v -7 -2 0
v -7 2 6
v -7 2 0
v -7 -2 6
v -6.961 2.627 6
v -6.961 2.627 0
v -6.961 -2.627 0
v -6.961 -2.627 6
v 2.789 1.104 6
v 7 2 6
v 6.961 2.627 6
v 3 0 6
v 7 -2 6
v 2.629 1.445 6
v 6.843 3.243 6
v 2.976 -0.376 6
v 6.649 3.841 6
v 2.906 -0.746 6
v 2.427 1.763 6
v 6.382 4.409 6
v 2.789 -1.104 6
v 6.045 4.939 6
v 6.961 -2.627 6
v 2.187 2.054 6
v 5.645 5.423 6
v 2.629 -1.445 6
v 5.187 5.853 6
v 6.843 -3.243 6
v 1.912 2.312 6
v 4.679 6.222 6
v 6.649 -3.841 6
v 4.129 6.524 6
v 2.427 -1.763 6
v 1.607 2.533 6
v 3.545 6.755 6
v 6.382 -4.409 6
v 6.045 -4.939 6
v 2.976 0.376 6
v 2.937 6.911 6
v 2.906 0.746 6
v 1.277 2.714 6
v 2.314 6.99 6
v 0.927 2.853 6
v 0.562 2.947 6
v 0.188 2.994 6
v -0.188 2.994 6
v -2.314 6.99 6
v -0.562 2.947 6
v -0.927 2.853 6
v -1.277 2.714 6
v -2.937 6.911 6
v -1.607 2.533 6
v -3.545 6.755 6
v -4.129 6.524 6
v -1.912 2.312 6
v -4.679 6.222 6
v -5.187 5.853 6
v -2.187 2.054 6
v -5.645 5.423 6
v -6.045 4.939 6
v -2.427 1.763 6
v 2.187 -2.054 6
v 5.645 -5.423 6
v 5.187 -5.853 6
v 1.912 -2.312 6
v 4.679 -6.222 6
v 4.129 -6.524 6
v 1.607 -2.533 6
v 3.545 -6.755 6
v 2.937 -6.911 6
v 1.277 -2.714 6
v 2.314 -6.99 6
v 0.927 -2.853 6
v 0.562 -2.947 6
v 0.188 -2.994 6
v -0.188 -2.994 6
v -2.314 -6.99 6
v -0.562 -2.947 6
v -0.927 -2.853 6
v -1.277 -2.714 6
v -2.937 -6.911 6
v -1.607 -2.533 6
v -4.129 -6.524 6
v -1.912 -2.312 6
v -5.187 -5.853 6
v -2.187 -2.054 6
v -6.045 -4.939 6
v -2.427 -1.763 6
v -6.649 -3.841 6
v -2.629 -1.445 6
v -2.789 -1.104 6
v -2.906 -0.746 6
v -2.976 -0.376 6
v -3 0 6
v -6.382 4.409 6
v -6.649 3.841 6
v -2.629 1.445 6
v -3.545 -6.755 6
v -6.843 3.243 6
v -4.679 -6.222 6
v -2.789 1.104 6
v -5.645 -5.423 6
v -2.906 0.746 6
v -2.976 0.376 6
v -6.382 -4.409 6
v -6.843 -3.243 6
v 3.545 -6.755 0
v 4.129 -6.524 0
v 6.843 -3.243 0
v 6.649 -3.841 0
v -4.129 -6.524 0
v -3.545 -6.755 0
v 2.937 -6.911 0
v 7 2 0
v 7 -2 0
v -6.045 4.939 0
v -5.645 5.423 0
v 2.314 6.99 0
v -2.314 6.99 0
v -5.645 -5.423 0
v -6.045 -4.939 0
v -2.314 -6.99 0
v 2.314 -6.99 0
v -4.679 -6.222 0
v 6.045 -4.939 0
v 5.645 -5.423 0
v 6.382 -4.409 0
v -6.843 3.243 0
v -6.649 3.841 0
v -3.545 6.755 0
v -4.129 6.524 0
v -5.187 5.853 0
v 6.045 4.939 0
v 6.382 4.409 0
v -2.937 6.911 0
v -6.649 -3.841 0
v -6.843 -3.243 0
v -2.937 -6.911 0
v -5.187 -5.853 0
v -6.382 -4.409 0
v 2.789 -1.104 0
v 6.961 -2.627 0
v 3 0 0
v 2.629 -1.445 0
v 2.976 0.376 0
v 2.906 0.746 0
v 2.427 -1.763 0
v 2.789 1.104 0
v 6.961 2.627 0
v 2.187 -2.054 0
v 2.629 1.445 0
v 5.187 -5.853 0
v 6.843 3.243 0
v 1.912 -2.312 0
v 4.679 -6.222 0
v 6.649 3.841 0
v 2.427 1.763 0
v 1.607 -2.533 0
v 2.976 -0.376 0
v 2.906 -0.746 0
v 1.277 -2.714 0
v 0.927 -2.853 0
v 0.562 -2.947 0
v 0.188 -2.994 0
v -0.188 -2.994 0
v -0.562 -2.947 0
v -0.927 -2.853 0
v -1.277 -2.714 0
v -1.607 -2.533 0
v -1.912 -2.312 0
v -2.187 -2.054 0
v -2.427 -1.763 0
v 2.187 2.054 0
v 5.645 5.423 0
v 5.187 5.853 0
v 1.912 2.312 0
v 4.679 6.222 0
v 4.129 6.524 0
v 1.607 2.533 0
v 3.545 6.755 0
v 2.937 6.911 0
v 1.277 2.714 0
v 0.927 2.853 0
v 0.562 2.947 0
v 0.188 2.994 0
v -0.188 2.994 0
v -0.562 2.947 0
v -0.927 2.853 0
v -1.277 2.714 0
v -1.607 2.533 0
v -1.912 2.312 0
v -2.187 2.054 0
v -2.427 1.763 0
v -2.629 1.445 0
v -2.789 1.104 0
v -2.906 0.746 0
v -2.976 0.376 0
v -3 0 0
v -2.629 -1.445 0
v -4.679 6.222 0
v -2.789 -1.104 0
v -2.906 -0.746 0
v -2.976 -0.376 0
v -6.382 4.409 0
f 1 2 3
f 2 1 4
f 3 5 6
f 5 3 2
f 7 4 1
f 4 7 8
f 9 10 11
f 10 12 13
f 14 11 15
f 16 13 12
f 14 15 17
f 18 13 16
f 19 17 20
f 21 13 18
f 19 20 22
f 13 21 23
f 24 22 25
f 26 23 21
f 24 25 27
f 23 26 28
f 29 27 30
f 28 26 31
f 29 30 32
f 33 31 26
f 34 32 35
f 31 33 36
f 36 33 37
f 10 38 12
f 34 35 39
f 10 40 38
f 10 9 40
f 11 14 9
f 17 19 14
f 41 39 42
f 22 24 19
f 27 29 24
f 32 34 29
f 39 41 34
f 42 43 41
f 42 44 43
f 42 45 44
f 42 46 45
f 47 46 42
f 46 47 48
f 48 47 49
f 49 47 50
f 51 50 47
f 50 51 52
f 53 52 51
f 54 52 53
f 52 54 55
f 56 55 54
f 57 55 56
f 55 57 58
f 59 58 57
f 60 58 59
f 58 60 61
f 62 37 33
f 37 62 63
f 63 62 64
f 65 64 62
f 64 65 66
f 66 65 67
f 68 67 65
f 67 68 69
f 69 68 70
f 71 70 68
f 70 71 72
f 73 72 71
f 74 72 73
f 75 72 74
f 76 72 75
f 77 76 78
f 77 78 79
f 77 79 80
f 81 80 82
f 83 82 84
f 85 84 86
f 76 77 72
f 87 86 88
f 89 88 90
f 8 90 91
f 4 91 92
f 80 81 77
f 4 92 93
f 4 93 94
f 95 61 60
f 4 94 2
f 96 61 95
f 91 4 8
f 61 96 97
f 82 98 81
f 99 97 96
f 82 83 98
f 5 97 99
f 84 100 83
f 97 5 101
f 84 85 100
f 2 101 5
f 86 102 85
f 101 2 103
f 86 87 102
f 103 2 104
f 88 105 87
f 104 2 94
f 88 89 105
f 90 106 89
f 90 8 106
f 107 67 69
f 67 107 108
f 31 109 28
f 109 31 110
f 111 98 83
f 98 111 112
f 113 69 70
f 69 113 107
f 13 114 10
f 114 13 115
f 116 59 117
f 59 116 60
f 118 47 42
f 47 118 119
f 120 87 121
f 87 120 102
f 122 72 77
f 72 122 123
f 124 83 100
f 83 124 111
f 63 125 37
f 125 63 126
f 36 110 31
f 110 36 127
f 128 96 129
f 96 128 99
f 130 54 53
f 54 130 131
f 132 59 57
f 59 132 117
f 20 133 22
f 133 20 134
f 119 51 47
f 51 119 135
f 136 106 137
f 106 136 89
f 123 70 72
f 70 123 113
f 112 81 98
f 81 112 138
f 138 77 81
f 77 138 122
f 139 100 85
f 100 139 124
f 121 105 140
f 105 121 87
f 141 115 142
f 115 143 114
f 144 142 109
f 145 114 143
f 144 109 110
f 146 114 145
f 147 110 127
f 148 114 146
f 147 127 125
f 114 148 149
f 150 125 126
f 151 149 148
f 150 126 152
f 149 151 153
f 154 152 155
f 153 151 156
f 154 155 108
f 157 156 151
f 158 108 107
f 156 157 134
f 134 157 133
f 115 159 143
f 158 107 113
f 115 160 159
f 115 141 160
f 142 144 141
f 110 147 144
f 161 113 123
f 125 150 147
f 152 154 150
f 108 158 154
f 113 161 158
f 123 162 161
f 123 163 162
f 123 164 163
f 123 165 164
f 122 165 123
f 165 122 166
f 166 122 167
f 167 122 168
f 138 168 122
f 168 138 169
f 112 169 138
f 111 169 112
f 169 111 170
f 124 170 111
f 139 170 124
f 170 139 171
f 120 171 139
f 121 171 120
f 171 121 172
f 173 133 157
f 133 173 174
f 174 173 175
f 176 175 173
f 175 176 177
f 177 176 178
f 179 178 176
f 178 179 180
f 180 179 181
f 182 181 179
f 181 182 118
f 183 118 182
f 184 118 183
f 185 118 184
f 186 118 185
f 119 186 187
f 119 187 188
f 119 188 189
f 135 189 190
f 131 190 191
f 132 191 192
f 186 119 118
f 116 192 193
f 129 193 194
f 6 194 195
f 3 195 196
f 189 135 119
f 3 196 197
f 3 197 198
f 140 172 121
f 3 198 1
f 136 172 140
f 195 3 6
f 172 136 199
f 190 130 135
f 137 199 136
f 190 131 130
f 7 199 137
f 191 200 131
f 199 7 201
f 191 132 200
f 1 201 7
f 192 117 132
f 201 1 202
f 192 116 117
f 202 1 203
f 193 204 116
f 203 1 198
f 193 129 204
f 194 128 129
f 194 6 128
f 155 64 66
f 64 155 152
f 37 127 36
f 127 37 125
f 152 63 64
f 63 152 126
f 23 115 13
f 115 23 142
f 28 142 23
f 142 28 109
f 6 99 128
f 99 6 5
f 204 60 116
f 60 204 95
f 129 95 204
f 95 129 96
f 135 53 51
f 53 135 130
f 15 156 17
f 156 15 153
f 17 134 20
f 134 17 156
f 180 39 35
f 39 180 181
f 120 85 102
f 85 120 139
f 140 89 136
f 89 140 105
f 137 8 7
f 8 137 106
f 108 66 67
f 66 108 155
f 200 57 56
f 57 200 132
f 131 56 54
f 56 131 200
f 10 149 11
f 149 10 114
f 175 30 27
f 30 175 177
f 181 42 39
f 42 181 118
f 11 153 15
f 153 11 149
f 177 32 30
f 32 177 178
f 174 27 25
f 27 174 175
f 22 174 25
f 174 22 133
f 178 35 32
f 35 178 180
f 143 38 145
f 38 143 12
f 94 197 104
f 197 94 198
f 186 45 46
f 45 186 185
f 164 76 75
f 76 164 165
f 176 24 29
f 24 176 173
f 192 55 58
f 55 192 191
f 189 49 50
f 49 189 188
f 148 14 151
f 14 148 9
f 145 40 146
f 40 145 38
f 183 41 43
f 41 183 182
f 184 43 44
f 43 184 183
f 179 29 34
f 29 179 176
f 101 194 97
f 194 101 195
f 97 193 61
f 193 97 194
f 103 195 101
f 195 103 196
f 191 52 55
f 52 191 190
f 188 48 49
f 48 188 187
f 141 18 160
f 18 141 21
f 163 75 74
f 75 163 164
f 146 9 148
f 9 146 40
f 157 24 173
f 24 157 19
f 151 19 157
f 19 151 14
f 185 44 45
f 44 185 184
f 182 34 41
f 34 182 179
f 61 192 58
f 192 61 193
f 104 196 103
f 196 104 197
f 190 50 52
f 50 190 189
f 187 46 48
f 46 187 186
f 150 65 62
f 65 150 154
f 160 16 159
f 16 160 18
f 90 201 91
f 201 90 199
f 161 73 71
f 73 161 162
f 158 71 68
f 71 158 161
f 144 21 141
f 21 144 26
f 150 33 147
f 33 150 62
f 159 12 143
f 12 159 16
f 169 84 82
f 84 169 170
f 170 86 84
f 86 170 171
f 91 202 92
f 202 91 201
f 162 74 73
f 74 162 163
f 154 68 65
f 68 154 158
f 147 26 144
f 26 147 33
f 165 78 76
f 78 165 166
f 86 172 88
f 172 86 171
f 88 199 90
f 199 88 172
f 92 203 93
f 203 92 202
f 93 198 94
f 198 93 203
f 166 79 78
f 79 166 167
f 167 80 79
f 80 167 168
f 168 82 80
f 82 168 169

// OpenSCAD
// Generated by SolidPython 1.1.3 on 2023-03-12 22:43:34
$fn = 50;


difference() {
	union() {
		translate(v = [0, 0, 0]) {
			rotate(a = [0, 0, 0]) {
				hull() {
					translate(v = [-2.0000000000, 2.0000000000, 0]) {
						rotate(a = [0, 0, 0]) {
							translate(v = [0, 0, 0]) {
								rotate(a = [0, 0, 0]) {
									cylinder(h = 6, r = 5);
								}
							}
						}
					}
					translate(v = [2.0000000000, 2.0000000000, 0]) {
						rotate(a = [0, 0, 0]) {
							translate(v = [0, 0, 0]) {
								rotate(a = [0, 0, 0]) {
									cylinder(h = 6, r = 5);
								}
							}
						}
					}
					translate(v = [-2.0000000000, -2.0000000000, 0]) {
						rotate(a = [0, 0, 0]) {
							translate(v = [0, 0, 0]) {
								rotate(a = [0, 0, 0]) {
									cylinder(h = 6, r = 5);
								}
							}
						}
					}
					translate(v = [2.0000000000, -2.0000000000, 0]) {
						rotate(a = [0, 0, 0]) {
							translate(v = [0, 0, 0]) {
								rotate(a = [0, 0, 0]) {
									cylinder(h = 6, r = 5);
								}
							}
						}
					}
				}
			}
		}
	}
	union() {
		translate(v = [0.0000000000, 0.0000000000, 0]) {
			rotate(a = [0, 0, 0]) {
				translate(v = [0, 0, -50]) {
					rotate(a = [0, 0, 0]) {
						cylinder(h = 100, r = 3.0000000000);
					}
				}
			}
		}
	}
}
/***********************************************
*********      SolidPython code:      **********
************************************************
 
from solid import *
import os
import subprocess

import oomB

import opsc_library_gen

mode = "laser"
#mode = "3d_print"

defined_objects = {}

radius_dict = {}
countersunk_dict = {}


def set_mode(m):
    global mode
    mode = m
    radius_dict['M6'] = 6.5/2
    radius_dict['M3'] = 3.3/2
    if mode == "laser":
        radius_dict['M6'] = 6/2
        radius_dict['M3'] = 3/2

    countersunk_dict['M3'] = {}
    countersunk_dict['M3']['little_rad'] = radius_dict['M3']
    countersunk_dict['M3']['big_rad'] = (5.5+0.6)/2
    if mode == "laser":
        countersunk_dict['M3']['big_rad'] = (4.75+0.6)/2
        countersunk_dict['M3']['little_rad'] = (4.75+0.6)/2

    countersunk_dict['M3']['height'] = 1.7


def opsc_make_object(filename, objects, save_type="none",resolution=50, layers = 1, tilediff = 200, mode="laser", overwrite=True):
    if overwrite or not os.path.exists(filename):
        set_mode(mode)
        save_type = save_type.lower()
        os.makedirs(os.path.dirname(filename), exist_ok=True)
        final_object = opsc_get_object(objects, mode = mode)
        # Save the final object to the specified filename    
        scad_render_to_file(final_object, filename, file_header='$fn = %s;' % resolution, include_orig_code=True)
        if mode == "laser":
            filename_laser = filename.replace(".scad","-flat.scad")
            scad_render_to_file(getLaser(final_object, layers=layers, tilediff=tilediff), filename_laser, file_header='$fn = %s;' % resolution, include_orig_code=True)
            if save_type == "all":
                saveToAll(filename_laser)
            elif save_type == "dxf":
                saveToDxf(filename_laser)
        if save_type == "all":
            saveToAll(filename)
        elif save_type == "dxf":
            saveToDxf(filename)


def opsc_get_object(objects, mode = "laser"):
    # Create the solidpython objects only include the positive objects and if they don't have inclusion or their inclusion is either all or mode
    # Initialize an empty list to store the results
    positive_objects = []

    # Iterate over the "objects" list
    for obj in objects:
        # Check if the current object has a "type" key with a value of "positive"
        if obj['type'] == 'positive':
            # Check if the current object has an "inclusion" key and its value matches "mode",
            # or if the current object does not have an "inclusion" key at all
            if not 'inclusion' in obj or obj['inclusion'] == "all" or obj['inclusion'] == mode:
                # Call the "get_opsc_item" function with the current object as an argument
                opsc_item = get_opsc_item(obj)
                # Add the result to the "positive_objects" list
                positive_objects.append(opsc_item)
# Initialize an empty list to store the results
    negative_objects = []

    # Iterate over the "objects" list
    for obj in objects:
        # Check if the current object has a "type" key with a value of "negative"
        if obj['type'] == 'negative':
            # Check if the current object has an "inclusion" key and its value matches "mode",
            # or if the current object does not have an "inclusion" key at all
            if not 'inclusion' in obj or obj['inclusion'] == "all" or obj['inclusion'] == mode:
                # Call the "get_opsc_item" function with the current object as an argument
                opsc_item = get_opsc_item(obj)
                # Add the result to the "negative_objects" list
                negative_objects.append(opsc_item)
    
    #positive_objects = [get_opsc_item(obj) for obj in objects if obj['type'] == 'positive']
    #negative_objects = [get_opsc_item(obj) for obj in objects if obj['type'] == 'negative']
    # Union the positive objects
    positive_object = union()(*positive_objects)
    # Union the negative objects
    negative_object = union()(*negative_objects)
    # Create the final object by subtracting the negative objects from the positive objects
    return difference()(positive_object, negative_object)

def get_opsc_item(params):
    # A dictionary to map radius string values to numerical values
    #radius_dict = {'small': 5, 'medium': 10, 'large': 15}
    # An array of function names for basic shapes
    basic_shapes = ['cube', 'sphere', 'cylinder']
    
    # An array of function names for other shapes
    other_shapes = ['hole', 'slot', 'rounded_rectangle', 'countersunk']
    


    # Convert radius to r if present, and remove radius from the params dictionary
    if 'radius' in params:
        if isinstance(params['radius'], str):
            # Use the radius_dict to map the radius string value to a numerical value
            params['r'] = radius_dict[params['radius']]
        else:
            params['r'] = params['radius']
        del params['radius']
    

    # Check if the object type is a basic shape
    if params['shape'] in basic_shapes:
        # Remove shape and unexpected dictionary values
        allowed_keys = {'size', 'r', 'r1', 'r2', 'd', 'h', 'rw', 'rh', 'dw', 'dh'}
        shape_params = {k: v for k, v in params.items() if k in allowed_keys}

        # Call the corresponding function for the shape parameter, using ** notation to pass the shape_params dictionary as keyword arguments
        return get_opsc_transform(params,globals()[params['shape']](**shape_params))
    
    # If the object type is not a basic shape, check if it's a defined object or one of the other shapes
    elif params['shape'] in other_shapes:
        # Call the corresponding function for the shape parameter, passing the params dictionary as an argument
        p2 = copy.deepcopy(params)
        p2["pos"] = [0,0,0]
        return get_opsc_transform(params,globals()[params['shape']](p2))
    
    # If the object is not a basic shape or a defined object, try to import it from a .scad file
    else:
        obj = defined_objects[params['shape']]
        return get_opsc_transform(params,obj)

def get_opsc_transform(params, solid_obj):
    # Rotate the object based on the 'rot' field in the params dictionary, or the 'rotX', 'rotY', and 'rotZ' fields if 'rot' is not present
    rot = params.get('rot', [])
    if rot:
        rotX, rotY, rotZ = rot
    else:
        rotX = params.get('rotX', 0)
        rotY = params.get('rotY', 0)
        rotZ = params.get('rotZ', 0)
    solid_obj = rotate([rotX, rotY, rotZ])(solid_obj)

    # Translate the object based on the 'pos' field in the params dictionary, or the 'x', 'y', and 'z' fields if 'pos' is not present
    pos = params.get('pos', [])
    if pos:
        x, y, z = pos
    else:
        x = params.get('x', 0)
        y = params.get('y', 0)
        z = params.get('z', 0)
    solid_obj = translate([x, y, z])(solid_obj)
    return solid_obj


import random

def opsc_easy_array(type, shape, repeats, pos_start, shift_arr, **kwargs):
    for i in range(0,3):
        repeats.append(1)
        pos_start.append(0)
        shift_arr.append(0)
    return_objects = []

    for x in range(0,repeats[0]):
        for y in range(0,repeats[1]):
            for z in range(0,repeats[2]):
                return_objects.append(opsc_easy(type, shape, pos=[pos_start[0]+x*shift_arr[0],pos_start[1]+y*shift_arr[1],pos_start[2]+z*shift_arr[2]], **kwargs))
    return return_objects                



def opsc_easy(type, shape, **kwargs):
    obj = {
        'type': type,
        'shape': shape
    }
    for param in ['size', 'r', 'r1', 'r2', 'd', 'h', 'rw', 'rh', 'dw', 'dh', 'pos', 'x', 'y', 'z', 'rot', 'rotX', 'rotY', 'rotZ', "w", "inclusion"]:
        if param in kwargs:
            obj[param] = kwargs[param]
    return obj

def hole(params):
    p2 = copy.deepcopy(params)  
    # Check if the radius is a string and replace it with the corresponding value from the dictionary
    if isinstance(p2['r'], str):
        p2['r'] = radius_dict[p2['r']]
    
    # Set the height to 100 if not specified
    if 'h' not in p2:
        p2['h'] = 100
        p2["pos"] = [0,0,-50]
    p2["center"] = True
    # Create the cylinder object
    p2["shape"] = "cylinder"
    p2["type"] = "positive"

    return get_opsc_item(p2)

import copy

def countersunk(params):
    p2 = copy.deepcopy(params)
    counter_rad = p2['r']
    p2['r'] = radius_dict[p2['r']]
    hp = copy.deepcopy(p2)
    hp["type"] = "positive"
    hp["shape"] = "hole"
    del hp["rot"]
    hol = get_opsc_item(hp)
    
    cp = copy.deepcopy(p2)
    cp["h"] = countersunk_dict[counter_rad]["height"]
    cp["r2"] = countersunk_dict[counter_rad]["little_rad"]
    cp["r1"] = countersunk_dict[counter_rad]["big_rad"]
    del cp["r"]
    del cp["rot"]
    cp["type"] = "positive"
    cp["shape"] = "cylinder"
    cp["pos"] = [0,0,0]

    top = get_opsc_item(cp)
    return union()(hol,top)



def slot(params):  
    p2 = copy.deepcopy(params) 
    if isinstance(p2['r'], str):
        p2['r'] = radius_dict[p2['r']]
    p2["type"] = "positive"
    p2["shape"] = "hole"
    del p2["rot"]
    p2["pos"] = [0,0,0]
    left = copy.deepcopy(p2)
    right = copy.deepcopy(p2)
    left["pos"][0] = p2["w"] / 2 - p2["r"] 
    
    right["pos"][0] = -p2["w"] / 2 + p2["r"] 
    pass
    leftObj = get_opsc_item(left)
    rightObj = get_opsc_item(right)
    return hull()(leftObj, rightObj)

def rounded_rectangle(params):   
    p2 = copy.deepcopy(params) 
    p2["h"] = p2["size"][2]
    p2["pos"] = p2.get("pos", [0, 0, 0]) 
    p2["type"] = "positive"
    p2["shape"] = "hole"
    p2["pos"] = [0,0,0]
    
    if 'rot' in p2:
        del p2["rot"]   
    if 'r' not in p2:
        p2["r"] = 5 
    tl = copy.deepcopy(p2)
    tr = copy.deepcopy(p2)
    bl = copy.deepcopy(p2)
    br = copy.deepcopy(p2)
    tl["pos"][0] = -(p2["size"][0] - p2["r"]*2)/2
    tl["pos"][1] = (p2["size"][1] - p2["r"]*2)/2
    tr["pos"][0] = (p2["size"][0] - p2["r"]*2)/2
    tr["pos"][1] = (p2["size"][1] - p2["r"]*2)/2
    bl["pos"][0] = -(p2["size"][0] - p2["r"]*2)/2
    bl["pos"][1] = -(p2["size"][1] - p2["r"]*2)/2
    br["pos"][0] = (p2["size"][0] - p2["r"]*2)/2
    br["pos"][1] = -(p2["size"][1] - p2["r"]*2)/2
    del tl["size"]
    del tr["size"]
    del bl["size"]
    del br["size"]
    tlo = get_opsc_item(tl)
    tro = get_opsc_item(tr)
    blo = get_opsc_item(bl)
    bro = get_opsc_item(br)    
    return hull()(tlo, tro, blo, bro)



def import_scad_object(filename):
    # Import the .scad file and convert it to a solidpython object
    #filename = "parts"
    obj = import_scad(filename)
    return obj.main()
    


import os
import solid as solidpython

# A dictionary to store the defined objects


def load_scad_objects():
    opsc_library_gen.gen_library(defined_objects)

import random

def test(num_objects):
    objects = []
    for i in range(num_objects):
        # Choose a random shape
        #shape = random.choice(['cube', 'sphere', 'cylinder', 'hole', 'slot', "rounded_rectangle"])
        shape = random.choice(["rounded_rectangle"])

        # Choose a random type
        type = random.choice(['positive', 'negative'])
        
        # Create an empty object dictionary
        obj = {'shape': shape, 'type': type}
        
        # Set shape-specific parameters
        if obj['shape'] in ['cube']:
            obj['size'] =  [random.uniform(5, 15), random.uniform(5, 15), random.uniform(5, 15)]
        if obj['shape'] in ['rounded_rectangle']:
            obj['size'] =  [random.uniform(5, 15), random.uniform(5, 15), random.uniform(5, 15)]
            obj['r'] = random.uniform(0.5, 5)
        elif obj['shape'] == 'sphere':
            obj['r'] = random.uniform(5, 15)
        elif obj['shape'] in ['cylinder', 'hole']:
            obj['r'] = random.uniform(0.5, 5)
            obj['h'] = random.uniform(5, 15)
        elif obj['shape'] == 'slot':
            obj['r'] = random.uniform(0.5, 5)
            obj['h'] = random.uniform(5, 15)
            obj['w'] = random.uniform(5, 15)
        
        # Set a random position and rotation
        obj['pos'] = [random.uniform(-20, 20), random.uniform(-20, 20), random.uniform(-20, 20)]
        obj['rot'] = [random.uniform(-180, 180), random.uniform(-180, 180), random.uniform(-180, 180)]
        
        # Add the object to the list
        objects.append(obj)
    return objects

####### old file saving
def saveToAll(fileIn):
    saveToDxf(fileIn)
    saveToPng(fileIn)
    saveToStl(fileIn)
    saveToSvg(fileIn)

def saveToDxf(fileIn, fileOut="", copy_to_laser=True):
    if fileOut == "":
        fileOut = fileIn.replace(".scad",".dxf")
    saveToFile(fileIn, fileOut)


    
def saveToPng(fileIn, fileOut="",extra="--render"):
    if fileOut == "":
        fileOut = fileIn.replace(".scad",".png")
    saveToFile(fileIn, fileOut)

def saveToStl(fileIn, fileOut=""):
    if fileOut == "":
        fileOut = fileIn.replace(".scad",".stl")
    saveToFile(fileIn, fileOut)
    
def saveToSvg(fileIn, fileOut=""):
    if fileOut == "":
        fileOut = fileIn.replace(".scad",".svg")
    saveToFile(fileIn, fileOut)

def saveToFile(fileIn, fileOut,extra=""):
    #extra = extra + " --colorscheme Tomorrow"

    launchStr = 'openscad -o "' + fileOut + '"' + extra + ' "' + fileIn + '"'
    if ".png" in fileOut:
        launchStr = launchStr + " --render"
    print("            saveToFile launch string: " + launchStr)
    subprocess.run(launchStr)
    x=0

def getLaser(final_object,start=1.5,layers=1,thickness=3,tilediff=200):
        rv= []

        for x in range(layers):
            rv.append(translate([0,x*tilediff,0])(
                    projection()(
                        intersection()(translate([-500,-500,start+x*thickness])(cube(size=[1000,1000,0.1])),
                            final_object
                        )
                    )
            )
            )
            
        return union()(rv)

set_mode("laser")
load_scad_objects() 
 
************************************************/
